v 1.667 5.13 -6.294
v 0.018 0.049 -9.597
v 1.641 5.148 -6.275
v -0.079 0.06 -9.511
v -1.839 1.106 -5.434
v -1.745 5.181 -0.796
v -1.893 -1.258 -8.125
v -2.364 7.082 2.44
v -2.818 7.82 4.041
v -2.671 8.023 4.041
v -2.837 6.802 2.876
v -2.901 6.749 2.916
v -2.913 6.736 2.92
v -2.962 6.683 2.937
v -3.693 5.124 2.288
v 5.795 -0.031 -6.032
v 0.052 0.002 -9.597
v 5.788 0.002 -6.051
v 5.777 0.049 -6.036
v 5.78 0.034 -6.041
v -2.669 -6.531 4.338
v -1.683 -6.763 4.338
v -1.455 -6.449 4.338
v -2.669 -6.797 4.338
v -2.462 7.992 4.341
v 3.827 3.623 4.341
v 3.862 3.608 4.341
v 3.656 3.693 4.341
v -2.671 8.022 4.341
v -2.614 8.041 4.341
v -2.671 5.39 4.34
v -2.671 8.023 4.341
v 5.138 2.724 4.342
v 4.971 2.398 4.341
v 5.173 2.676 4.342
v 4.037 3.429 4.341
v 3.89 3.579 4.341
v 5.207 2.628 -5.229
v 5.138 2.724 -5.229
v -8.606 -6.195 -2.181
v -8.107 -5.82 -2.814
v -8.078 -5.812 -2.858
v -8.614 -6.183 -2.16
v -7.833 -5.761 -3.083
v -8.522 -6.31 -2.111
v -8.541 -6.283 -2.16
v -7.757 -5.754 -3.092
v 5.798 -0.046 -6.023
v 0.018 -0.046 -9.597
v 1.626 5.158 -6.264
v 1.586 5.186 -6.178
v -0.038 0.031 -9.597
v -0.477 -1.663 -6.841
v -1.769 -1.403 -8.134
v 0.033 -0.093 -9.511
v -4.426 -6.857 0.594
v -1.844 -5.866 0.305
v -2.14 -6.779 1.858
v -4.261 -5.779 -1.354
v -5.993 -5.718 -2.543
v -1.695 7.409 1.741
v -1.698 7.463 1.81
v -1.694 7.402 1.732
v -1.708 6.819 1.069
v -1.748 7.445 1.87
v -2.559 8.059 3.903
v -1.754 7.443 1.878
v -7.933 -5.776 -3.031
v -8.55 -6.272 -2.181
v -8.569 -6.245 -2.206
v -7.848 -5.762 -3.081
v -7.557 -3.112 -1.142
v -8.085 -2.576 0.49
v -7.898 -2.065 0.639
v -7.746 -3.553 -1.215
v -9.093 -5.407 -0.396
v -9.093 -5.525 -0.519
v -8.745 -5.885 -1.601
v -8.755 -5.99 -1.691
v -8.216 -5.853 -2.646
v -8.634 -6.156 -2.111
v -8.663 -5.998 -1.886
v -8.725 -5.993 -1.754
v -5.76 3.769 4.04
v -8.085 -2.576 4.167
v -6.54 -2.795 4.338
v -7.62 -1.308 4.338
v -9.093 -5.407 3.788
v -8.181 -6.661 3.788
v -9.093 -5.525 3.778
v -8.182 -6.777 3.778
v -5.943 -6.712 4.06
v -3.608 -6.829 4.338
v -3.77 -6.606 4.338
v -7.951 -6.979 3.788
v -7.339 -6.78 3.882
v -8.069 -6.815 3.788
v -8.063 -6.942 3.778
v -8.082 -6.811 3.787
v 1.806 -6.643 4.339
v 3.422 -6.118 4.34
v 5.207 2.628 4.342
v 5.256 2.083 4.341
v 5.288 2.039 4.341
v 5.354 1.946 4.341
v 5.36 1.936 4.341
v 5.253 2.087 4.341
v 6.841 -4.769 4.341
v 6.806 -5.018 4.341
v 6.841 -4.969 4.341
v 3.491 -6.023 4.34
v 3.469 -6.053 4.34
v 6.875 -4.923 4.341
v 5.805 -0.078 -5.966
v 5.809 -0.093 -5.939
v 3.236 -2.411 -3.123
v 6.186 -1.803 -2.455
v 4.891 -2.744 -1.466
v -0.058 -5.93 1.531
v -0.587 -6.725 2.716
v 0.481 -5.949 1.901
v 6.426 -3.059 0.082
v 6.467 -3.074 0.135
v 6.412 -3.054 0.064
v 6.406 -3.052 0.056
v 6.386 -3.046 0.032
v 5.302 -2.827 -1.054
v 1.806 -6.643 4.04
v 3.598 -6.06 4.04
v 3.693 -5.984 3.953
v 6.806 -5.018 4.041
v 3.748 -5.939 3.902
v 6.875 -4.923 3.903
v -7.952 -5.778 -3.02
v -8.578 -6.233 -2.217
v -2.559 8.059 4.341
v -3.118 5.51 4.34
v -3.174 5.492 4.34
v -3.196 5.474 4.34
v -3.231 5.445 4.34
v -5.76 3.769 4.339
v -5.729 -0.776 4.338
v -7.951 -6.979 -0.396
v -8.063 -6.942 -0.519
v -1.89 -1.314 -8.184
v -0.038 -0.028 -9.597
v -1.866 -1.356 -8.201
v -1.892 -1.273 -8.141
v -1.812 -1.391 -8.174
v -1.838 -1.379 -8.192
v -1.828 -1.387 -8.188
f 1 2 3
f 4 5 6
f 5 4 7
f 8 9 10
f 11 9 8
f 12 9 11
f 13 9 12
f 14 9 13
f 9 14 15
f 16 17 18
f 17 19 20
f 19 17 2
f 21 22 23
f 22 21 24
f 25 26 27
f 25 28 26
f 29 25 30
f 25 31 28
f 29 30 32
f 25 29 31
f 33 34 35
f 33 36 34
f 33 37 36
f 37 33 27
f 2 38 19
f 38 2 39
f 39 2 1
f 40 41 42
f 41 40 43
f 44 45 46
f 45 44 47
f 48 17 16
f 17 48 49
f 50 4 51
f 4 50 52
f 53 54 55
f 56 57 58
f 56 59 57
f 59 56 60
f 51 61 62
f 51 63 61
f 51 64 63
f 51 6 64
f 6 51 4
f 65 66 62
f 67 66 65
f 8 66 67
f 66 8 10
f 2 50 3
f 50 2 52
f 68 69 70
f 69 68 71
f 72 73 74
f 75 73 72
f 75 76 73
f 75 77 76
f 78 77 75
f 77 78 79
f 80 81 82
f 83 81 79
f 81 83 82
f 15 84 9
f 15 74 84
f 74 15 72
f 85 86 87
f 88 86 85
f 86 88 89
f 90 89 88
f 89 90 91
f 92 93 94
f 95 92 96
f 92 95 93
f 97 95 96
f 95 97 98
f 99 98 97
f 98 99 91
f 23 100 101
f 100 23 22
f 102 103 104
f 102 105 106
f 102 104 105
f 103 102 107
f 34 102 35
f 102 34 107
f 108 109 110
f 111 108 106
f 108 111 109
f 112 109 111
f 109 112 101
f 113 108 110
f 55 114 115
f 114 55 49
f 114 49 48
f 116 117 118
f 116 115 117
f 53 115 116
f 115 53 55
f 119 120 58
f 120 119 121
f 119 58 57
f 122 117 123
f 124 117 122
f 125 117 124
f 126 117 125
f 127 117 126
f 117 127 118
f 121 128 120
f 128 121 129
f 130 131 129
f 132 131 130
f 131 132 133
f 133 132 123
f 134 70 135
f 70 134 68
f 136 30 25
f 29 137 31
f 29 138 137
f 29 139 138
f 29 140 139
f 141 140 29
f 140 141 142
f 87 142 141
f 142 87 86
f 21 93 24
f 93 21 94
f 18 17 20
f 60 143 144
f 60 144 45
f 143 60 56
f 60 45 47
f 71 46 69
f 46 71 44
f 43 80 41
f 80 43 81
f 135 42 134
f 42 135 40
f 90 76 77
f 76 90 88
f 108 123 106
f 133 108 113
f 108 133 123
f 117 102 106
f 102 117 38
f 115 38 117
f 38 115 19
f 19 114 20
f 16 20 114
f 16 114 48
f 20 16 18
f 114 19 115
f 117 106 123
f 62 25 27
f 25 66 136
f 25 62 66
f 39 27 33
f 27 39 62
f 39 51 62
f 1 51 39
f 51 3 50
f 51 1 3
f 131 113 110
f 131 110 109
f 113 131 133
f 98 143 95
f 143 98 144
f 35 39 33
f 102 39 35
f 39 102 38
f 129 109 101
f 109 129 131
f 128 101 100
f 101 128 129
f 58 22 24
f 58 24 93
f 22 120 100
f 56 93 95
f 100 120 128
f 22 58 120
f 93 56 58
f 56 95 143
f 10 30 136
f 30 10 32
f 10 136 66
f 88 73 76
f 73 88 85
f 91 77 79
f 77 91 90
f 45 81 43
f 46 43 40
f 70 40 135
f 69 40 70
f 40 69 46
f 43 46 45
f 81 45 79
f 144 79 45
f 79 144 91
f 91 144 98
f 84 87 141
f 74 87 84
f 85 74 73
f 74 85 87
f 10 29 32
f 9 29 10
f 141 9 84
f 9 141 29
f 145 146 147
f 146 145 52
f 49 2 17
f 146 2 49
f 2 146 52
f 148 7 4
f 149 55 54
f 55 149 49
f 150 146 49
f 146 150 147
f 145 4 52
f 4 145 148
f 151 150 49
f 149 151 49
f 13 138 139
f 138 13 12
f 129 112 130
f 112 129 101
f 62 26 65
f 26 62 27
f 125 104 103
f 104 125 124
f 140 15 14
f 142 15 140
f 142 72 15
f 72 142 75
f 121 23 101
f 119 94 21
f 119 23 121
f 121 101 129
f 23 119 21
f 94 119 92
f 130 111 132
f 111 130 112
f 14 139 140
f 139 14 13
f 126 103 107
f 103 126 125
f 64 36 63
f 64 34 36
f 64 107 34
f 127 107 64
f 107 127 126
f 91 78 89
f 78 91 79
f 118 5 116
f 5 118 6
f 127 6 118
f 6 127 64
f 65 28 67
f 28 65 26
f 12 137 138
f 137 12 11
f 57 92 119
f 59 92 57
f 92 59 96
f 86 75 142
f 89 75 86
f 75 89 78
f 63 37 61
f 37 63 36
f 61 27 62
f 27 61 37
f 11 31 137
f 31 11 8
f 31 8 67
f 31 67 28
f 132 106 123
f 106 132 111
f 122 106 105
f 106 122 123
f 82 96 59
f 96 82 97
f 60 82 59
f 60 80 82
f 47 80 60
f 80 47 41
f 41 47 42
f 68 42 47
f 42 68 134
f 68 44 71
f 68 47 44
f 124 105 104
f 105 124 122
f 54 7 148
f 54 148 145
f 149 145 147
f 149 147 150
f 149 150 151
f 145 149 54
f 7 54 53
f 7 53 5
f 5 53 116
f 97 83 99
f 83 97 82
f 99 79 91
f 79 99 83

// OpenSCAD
// Auto-generated OpenSCAD file

    inner_points = 10*[[0.010822126776322105, -0.4253965348253418, -0.8841193748434077], [-0.9011876079860377, -0.546584266283201, -0.49226254200418296], [-0.5679521834680924, 0.3710392408495472, -0.708875678733561], [-0.7981668194007837, -0.6883484018941259, 0.4922625450168436], [-0.2589805762752483, 0.796397621522542, 0.14177512737898157], [0.6774959295154908, -0.4922625333758151, -0.14177512924090818], [-0.4012610459893345, 0.1416600510453211, 0.8841193748434077], [0.5107486887730253, 0.2628477825031803, 0.49226254200418296], [0.17751326425508, -0.6547757246295679, 0.708875678733561], [-0.8003688307481618, -0.2634563312038399, -1.446030934505191]];

    outer_points = 10*[[-0.6880381915718803, -0.49999998970608384, -0.42557250195458624], [-0.2628785942986316, -0.8091184366568306, 0.4251243315890725], [-0.8507501659543638, -0.00016416400980563553, 0.42512659922224816], [0.6881449121452123, -0.49999998970608384, 0.4253999146333339], [-0.26305127181358173, 0.8089155187812519, 0.4254035837408861], [0.0002222331138788114, 0.00016416400980563553, -0.9510564761622176], [0.6880381915718803, 0.49999998970608384, 0.42557250195458624], [0.2628785942986316, 0.8091184366568306, -0.4251243315890725], [0.8507501659543638, 0.00016416400980563553, -0.42512659922224816], [-1.2493737711519366, -0.9079276976139716, 0.2944951005790503]];

    // Convex hull for inner set (I)
    module inner_hull() {
        hull() {
            for (p = inner_points) {
                translate(p) sphere(r=0.1);
            }
        }
    }

    // Convex hull for outer set (O) minus inner hull (O \ I)
    module outer_minus_inner() {
        difference() {
            hull() {
                for (p = outer_points) {
                    translate(p) sphere(r=0.1);
                }
            }
            inner_hull(); // Subtract inner hull
        }
    }

    // Convex hull for outer set (O) minus all translated inner hulls
    module outer_minus_AllTranslationInner() {
        difference() {
            hull() {
                for (p = outer_points) {
                    translate(p) sphere(r=0.1);
                }
            }
            hull() {
                translate([0,0,50]) inner_hull();
                translate([0,0,-50]) inner_hull();
            }; // Subtract translated inner hulls
        }
    }

    // Difference between outer_minus_inner and outer_minus_AllTranslationInner
    module outer_minus_inner_diff() {
        difference() {
            // Outer minus inner
            difference() {
                hull() {
                    for (p = outer_points) {
                        translate(p) sphere(r=0.1);
                    }
                }
                inner_hull();
            }

            // Subtract Outer minus AllTranslationInner
            difference() {
                hull() {
                    for (p = outer_points) {
                        translate(p) sphere(r=0.1);
                    }
                }
                hull() {
                    translate([0,0,50]) inner_hull();
                    translate([0,0,-50]) inner_hull();
                };
            }
        }
    }

    // Rendering all with colors applied
    color([1, 1, 0, 1]) outer_minus_inner_diff(); // Opaque yellow
    
